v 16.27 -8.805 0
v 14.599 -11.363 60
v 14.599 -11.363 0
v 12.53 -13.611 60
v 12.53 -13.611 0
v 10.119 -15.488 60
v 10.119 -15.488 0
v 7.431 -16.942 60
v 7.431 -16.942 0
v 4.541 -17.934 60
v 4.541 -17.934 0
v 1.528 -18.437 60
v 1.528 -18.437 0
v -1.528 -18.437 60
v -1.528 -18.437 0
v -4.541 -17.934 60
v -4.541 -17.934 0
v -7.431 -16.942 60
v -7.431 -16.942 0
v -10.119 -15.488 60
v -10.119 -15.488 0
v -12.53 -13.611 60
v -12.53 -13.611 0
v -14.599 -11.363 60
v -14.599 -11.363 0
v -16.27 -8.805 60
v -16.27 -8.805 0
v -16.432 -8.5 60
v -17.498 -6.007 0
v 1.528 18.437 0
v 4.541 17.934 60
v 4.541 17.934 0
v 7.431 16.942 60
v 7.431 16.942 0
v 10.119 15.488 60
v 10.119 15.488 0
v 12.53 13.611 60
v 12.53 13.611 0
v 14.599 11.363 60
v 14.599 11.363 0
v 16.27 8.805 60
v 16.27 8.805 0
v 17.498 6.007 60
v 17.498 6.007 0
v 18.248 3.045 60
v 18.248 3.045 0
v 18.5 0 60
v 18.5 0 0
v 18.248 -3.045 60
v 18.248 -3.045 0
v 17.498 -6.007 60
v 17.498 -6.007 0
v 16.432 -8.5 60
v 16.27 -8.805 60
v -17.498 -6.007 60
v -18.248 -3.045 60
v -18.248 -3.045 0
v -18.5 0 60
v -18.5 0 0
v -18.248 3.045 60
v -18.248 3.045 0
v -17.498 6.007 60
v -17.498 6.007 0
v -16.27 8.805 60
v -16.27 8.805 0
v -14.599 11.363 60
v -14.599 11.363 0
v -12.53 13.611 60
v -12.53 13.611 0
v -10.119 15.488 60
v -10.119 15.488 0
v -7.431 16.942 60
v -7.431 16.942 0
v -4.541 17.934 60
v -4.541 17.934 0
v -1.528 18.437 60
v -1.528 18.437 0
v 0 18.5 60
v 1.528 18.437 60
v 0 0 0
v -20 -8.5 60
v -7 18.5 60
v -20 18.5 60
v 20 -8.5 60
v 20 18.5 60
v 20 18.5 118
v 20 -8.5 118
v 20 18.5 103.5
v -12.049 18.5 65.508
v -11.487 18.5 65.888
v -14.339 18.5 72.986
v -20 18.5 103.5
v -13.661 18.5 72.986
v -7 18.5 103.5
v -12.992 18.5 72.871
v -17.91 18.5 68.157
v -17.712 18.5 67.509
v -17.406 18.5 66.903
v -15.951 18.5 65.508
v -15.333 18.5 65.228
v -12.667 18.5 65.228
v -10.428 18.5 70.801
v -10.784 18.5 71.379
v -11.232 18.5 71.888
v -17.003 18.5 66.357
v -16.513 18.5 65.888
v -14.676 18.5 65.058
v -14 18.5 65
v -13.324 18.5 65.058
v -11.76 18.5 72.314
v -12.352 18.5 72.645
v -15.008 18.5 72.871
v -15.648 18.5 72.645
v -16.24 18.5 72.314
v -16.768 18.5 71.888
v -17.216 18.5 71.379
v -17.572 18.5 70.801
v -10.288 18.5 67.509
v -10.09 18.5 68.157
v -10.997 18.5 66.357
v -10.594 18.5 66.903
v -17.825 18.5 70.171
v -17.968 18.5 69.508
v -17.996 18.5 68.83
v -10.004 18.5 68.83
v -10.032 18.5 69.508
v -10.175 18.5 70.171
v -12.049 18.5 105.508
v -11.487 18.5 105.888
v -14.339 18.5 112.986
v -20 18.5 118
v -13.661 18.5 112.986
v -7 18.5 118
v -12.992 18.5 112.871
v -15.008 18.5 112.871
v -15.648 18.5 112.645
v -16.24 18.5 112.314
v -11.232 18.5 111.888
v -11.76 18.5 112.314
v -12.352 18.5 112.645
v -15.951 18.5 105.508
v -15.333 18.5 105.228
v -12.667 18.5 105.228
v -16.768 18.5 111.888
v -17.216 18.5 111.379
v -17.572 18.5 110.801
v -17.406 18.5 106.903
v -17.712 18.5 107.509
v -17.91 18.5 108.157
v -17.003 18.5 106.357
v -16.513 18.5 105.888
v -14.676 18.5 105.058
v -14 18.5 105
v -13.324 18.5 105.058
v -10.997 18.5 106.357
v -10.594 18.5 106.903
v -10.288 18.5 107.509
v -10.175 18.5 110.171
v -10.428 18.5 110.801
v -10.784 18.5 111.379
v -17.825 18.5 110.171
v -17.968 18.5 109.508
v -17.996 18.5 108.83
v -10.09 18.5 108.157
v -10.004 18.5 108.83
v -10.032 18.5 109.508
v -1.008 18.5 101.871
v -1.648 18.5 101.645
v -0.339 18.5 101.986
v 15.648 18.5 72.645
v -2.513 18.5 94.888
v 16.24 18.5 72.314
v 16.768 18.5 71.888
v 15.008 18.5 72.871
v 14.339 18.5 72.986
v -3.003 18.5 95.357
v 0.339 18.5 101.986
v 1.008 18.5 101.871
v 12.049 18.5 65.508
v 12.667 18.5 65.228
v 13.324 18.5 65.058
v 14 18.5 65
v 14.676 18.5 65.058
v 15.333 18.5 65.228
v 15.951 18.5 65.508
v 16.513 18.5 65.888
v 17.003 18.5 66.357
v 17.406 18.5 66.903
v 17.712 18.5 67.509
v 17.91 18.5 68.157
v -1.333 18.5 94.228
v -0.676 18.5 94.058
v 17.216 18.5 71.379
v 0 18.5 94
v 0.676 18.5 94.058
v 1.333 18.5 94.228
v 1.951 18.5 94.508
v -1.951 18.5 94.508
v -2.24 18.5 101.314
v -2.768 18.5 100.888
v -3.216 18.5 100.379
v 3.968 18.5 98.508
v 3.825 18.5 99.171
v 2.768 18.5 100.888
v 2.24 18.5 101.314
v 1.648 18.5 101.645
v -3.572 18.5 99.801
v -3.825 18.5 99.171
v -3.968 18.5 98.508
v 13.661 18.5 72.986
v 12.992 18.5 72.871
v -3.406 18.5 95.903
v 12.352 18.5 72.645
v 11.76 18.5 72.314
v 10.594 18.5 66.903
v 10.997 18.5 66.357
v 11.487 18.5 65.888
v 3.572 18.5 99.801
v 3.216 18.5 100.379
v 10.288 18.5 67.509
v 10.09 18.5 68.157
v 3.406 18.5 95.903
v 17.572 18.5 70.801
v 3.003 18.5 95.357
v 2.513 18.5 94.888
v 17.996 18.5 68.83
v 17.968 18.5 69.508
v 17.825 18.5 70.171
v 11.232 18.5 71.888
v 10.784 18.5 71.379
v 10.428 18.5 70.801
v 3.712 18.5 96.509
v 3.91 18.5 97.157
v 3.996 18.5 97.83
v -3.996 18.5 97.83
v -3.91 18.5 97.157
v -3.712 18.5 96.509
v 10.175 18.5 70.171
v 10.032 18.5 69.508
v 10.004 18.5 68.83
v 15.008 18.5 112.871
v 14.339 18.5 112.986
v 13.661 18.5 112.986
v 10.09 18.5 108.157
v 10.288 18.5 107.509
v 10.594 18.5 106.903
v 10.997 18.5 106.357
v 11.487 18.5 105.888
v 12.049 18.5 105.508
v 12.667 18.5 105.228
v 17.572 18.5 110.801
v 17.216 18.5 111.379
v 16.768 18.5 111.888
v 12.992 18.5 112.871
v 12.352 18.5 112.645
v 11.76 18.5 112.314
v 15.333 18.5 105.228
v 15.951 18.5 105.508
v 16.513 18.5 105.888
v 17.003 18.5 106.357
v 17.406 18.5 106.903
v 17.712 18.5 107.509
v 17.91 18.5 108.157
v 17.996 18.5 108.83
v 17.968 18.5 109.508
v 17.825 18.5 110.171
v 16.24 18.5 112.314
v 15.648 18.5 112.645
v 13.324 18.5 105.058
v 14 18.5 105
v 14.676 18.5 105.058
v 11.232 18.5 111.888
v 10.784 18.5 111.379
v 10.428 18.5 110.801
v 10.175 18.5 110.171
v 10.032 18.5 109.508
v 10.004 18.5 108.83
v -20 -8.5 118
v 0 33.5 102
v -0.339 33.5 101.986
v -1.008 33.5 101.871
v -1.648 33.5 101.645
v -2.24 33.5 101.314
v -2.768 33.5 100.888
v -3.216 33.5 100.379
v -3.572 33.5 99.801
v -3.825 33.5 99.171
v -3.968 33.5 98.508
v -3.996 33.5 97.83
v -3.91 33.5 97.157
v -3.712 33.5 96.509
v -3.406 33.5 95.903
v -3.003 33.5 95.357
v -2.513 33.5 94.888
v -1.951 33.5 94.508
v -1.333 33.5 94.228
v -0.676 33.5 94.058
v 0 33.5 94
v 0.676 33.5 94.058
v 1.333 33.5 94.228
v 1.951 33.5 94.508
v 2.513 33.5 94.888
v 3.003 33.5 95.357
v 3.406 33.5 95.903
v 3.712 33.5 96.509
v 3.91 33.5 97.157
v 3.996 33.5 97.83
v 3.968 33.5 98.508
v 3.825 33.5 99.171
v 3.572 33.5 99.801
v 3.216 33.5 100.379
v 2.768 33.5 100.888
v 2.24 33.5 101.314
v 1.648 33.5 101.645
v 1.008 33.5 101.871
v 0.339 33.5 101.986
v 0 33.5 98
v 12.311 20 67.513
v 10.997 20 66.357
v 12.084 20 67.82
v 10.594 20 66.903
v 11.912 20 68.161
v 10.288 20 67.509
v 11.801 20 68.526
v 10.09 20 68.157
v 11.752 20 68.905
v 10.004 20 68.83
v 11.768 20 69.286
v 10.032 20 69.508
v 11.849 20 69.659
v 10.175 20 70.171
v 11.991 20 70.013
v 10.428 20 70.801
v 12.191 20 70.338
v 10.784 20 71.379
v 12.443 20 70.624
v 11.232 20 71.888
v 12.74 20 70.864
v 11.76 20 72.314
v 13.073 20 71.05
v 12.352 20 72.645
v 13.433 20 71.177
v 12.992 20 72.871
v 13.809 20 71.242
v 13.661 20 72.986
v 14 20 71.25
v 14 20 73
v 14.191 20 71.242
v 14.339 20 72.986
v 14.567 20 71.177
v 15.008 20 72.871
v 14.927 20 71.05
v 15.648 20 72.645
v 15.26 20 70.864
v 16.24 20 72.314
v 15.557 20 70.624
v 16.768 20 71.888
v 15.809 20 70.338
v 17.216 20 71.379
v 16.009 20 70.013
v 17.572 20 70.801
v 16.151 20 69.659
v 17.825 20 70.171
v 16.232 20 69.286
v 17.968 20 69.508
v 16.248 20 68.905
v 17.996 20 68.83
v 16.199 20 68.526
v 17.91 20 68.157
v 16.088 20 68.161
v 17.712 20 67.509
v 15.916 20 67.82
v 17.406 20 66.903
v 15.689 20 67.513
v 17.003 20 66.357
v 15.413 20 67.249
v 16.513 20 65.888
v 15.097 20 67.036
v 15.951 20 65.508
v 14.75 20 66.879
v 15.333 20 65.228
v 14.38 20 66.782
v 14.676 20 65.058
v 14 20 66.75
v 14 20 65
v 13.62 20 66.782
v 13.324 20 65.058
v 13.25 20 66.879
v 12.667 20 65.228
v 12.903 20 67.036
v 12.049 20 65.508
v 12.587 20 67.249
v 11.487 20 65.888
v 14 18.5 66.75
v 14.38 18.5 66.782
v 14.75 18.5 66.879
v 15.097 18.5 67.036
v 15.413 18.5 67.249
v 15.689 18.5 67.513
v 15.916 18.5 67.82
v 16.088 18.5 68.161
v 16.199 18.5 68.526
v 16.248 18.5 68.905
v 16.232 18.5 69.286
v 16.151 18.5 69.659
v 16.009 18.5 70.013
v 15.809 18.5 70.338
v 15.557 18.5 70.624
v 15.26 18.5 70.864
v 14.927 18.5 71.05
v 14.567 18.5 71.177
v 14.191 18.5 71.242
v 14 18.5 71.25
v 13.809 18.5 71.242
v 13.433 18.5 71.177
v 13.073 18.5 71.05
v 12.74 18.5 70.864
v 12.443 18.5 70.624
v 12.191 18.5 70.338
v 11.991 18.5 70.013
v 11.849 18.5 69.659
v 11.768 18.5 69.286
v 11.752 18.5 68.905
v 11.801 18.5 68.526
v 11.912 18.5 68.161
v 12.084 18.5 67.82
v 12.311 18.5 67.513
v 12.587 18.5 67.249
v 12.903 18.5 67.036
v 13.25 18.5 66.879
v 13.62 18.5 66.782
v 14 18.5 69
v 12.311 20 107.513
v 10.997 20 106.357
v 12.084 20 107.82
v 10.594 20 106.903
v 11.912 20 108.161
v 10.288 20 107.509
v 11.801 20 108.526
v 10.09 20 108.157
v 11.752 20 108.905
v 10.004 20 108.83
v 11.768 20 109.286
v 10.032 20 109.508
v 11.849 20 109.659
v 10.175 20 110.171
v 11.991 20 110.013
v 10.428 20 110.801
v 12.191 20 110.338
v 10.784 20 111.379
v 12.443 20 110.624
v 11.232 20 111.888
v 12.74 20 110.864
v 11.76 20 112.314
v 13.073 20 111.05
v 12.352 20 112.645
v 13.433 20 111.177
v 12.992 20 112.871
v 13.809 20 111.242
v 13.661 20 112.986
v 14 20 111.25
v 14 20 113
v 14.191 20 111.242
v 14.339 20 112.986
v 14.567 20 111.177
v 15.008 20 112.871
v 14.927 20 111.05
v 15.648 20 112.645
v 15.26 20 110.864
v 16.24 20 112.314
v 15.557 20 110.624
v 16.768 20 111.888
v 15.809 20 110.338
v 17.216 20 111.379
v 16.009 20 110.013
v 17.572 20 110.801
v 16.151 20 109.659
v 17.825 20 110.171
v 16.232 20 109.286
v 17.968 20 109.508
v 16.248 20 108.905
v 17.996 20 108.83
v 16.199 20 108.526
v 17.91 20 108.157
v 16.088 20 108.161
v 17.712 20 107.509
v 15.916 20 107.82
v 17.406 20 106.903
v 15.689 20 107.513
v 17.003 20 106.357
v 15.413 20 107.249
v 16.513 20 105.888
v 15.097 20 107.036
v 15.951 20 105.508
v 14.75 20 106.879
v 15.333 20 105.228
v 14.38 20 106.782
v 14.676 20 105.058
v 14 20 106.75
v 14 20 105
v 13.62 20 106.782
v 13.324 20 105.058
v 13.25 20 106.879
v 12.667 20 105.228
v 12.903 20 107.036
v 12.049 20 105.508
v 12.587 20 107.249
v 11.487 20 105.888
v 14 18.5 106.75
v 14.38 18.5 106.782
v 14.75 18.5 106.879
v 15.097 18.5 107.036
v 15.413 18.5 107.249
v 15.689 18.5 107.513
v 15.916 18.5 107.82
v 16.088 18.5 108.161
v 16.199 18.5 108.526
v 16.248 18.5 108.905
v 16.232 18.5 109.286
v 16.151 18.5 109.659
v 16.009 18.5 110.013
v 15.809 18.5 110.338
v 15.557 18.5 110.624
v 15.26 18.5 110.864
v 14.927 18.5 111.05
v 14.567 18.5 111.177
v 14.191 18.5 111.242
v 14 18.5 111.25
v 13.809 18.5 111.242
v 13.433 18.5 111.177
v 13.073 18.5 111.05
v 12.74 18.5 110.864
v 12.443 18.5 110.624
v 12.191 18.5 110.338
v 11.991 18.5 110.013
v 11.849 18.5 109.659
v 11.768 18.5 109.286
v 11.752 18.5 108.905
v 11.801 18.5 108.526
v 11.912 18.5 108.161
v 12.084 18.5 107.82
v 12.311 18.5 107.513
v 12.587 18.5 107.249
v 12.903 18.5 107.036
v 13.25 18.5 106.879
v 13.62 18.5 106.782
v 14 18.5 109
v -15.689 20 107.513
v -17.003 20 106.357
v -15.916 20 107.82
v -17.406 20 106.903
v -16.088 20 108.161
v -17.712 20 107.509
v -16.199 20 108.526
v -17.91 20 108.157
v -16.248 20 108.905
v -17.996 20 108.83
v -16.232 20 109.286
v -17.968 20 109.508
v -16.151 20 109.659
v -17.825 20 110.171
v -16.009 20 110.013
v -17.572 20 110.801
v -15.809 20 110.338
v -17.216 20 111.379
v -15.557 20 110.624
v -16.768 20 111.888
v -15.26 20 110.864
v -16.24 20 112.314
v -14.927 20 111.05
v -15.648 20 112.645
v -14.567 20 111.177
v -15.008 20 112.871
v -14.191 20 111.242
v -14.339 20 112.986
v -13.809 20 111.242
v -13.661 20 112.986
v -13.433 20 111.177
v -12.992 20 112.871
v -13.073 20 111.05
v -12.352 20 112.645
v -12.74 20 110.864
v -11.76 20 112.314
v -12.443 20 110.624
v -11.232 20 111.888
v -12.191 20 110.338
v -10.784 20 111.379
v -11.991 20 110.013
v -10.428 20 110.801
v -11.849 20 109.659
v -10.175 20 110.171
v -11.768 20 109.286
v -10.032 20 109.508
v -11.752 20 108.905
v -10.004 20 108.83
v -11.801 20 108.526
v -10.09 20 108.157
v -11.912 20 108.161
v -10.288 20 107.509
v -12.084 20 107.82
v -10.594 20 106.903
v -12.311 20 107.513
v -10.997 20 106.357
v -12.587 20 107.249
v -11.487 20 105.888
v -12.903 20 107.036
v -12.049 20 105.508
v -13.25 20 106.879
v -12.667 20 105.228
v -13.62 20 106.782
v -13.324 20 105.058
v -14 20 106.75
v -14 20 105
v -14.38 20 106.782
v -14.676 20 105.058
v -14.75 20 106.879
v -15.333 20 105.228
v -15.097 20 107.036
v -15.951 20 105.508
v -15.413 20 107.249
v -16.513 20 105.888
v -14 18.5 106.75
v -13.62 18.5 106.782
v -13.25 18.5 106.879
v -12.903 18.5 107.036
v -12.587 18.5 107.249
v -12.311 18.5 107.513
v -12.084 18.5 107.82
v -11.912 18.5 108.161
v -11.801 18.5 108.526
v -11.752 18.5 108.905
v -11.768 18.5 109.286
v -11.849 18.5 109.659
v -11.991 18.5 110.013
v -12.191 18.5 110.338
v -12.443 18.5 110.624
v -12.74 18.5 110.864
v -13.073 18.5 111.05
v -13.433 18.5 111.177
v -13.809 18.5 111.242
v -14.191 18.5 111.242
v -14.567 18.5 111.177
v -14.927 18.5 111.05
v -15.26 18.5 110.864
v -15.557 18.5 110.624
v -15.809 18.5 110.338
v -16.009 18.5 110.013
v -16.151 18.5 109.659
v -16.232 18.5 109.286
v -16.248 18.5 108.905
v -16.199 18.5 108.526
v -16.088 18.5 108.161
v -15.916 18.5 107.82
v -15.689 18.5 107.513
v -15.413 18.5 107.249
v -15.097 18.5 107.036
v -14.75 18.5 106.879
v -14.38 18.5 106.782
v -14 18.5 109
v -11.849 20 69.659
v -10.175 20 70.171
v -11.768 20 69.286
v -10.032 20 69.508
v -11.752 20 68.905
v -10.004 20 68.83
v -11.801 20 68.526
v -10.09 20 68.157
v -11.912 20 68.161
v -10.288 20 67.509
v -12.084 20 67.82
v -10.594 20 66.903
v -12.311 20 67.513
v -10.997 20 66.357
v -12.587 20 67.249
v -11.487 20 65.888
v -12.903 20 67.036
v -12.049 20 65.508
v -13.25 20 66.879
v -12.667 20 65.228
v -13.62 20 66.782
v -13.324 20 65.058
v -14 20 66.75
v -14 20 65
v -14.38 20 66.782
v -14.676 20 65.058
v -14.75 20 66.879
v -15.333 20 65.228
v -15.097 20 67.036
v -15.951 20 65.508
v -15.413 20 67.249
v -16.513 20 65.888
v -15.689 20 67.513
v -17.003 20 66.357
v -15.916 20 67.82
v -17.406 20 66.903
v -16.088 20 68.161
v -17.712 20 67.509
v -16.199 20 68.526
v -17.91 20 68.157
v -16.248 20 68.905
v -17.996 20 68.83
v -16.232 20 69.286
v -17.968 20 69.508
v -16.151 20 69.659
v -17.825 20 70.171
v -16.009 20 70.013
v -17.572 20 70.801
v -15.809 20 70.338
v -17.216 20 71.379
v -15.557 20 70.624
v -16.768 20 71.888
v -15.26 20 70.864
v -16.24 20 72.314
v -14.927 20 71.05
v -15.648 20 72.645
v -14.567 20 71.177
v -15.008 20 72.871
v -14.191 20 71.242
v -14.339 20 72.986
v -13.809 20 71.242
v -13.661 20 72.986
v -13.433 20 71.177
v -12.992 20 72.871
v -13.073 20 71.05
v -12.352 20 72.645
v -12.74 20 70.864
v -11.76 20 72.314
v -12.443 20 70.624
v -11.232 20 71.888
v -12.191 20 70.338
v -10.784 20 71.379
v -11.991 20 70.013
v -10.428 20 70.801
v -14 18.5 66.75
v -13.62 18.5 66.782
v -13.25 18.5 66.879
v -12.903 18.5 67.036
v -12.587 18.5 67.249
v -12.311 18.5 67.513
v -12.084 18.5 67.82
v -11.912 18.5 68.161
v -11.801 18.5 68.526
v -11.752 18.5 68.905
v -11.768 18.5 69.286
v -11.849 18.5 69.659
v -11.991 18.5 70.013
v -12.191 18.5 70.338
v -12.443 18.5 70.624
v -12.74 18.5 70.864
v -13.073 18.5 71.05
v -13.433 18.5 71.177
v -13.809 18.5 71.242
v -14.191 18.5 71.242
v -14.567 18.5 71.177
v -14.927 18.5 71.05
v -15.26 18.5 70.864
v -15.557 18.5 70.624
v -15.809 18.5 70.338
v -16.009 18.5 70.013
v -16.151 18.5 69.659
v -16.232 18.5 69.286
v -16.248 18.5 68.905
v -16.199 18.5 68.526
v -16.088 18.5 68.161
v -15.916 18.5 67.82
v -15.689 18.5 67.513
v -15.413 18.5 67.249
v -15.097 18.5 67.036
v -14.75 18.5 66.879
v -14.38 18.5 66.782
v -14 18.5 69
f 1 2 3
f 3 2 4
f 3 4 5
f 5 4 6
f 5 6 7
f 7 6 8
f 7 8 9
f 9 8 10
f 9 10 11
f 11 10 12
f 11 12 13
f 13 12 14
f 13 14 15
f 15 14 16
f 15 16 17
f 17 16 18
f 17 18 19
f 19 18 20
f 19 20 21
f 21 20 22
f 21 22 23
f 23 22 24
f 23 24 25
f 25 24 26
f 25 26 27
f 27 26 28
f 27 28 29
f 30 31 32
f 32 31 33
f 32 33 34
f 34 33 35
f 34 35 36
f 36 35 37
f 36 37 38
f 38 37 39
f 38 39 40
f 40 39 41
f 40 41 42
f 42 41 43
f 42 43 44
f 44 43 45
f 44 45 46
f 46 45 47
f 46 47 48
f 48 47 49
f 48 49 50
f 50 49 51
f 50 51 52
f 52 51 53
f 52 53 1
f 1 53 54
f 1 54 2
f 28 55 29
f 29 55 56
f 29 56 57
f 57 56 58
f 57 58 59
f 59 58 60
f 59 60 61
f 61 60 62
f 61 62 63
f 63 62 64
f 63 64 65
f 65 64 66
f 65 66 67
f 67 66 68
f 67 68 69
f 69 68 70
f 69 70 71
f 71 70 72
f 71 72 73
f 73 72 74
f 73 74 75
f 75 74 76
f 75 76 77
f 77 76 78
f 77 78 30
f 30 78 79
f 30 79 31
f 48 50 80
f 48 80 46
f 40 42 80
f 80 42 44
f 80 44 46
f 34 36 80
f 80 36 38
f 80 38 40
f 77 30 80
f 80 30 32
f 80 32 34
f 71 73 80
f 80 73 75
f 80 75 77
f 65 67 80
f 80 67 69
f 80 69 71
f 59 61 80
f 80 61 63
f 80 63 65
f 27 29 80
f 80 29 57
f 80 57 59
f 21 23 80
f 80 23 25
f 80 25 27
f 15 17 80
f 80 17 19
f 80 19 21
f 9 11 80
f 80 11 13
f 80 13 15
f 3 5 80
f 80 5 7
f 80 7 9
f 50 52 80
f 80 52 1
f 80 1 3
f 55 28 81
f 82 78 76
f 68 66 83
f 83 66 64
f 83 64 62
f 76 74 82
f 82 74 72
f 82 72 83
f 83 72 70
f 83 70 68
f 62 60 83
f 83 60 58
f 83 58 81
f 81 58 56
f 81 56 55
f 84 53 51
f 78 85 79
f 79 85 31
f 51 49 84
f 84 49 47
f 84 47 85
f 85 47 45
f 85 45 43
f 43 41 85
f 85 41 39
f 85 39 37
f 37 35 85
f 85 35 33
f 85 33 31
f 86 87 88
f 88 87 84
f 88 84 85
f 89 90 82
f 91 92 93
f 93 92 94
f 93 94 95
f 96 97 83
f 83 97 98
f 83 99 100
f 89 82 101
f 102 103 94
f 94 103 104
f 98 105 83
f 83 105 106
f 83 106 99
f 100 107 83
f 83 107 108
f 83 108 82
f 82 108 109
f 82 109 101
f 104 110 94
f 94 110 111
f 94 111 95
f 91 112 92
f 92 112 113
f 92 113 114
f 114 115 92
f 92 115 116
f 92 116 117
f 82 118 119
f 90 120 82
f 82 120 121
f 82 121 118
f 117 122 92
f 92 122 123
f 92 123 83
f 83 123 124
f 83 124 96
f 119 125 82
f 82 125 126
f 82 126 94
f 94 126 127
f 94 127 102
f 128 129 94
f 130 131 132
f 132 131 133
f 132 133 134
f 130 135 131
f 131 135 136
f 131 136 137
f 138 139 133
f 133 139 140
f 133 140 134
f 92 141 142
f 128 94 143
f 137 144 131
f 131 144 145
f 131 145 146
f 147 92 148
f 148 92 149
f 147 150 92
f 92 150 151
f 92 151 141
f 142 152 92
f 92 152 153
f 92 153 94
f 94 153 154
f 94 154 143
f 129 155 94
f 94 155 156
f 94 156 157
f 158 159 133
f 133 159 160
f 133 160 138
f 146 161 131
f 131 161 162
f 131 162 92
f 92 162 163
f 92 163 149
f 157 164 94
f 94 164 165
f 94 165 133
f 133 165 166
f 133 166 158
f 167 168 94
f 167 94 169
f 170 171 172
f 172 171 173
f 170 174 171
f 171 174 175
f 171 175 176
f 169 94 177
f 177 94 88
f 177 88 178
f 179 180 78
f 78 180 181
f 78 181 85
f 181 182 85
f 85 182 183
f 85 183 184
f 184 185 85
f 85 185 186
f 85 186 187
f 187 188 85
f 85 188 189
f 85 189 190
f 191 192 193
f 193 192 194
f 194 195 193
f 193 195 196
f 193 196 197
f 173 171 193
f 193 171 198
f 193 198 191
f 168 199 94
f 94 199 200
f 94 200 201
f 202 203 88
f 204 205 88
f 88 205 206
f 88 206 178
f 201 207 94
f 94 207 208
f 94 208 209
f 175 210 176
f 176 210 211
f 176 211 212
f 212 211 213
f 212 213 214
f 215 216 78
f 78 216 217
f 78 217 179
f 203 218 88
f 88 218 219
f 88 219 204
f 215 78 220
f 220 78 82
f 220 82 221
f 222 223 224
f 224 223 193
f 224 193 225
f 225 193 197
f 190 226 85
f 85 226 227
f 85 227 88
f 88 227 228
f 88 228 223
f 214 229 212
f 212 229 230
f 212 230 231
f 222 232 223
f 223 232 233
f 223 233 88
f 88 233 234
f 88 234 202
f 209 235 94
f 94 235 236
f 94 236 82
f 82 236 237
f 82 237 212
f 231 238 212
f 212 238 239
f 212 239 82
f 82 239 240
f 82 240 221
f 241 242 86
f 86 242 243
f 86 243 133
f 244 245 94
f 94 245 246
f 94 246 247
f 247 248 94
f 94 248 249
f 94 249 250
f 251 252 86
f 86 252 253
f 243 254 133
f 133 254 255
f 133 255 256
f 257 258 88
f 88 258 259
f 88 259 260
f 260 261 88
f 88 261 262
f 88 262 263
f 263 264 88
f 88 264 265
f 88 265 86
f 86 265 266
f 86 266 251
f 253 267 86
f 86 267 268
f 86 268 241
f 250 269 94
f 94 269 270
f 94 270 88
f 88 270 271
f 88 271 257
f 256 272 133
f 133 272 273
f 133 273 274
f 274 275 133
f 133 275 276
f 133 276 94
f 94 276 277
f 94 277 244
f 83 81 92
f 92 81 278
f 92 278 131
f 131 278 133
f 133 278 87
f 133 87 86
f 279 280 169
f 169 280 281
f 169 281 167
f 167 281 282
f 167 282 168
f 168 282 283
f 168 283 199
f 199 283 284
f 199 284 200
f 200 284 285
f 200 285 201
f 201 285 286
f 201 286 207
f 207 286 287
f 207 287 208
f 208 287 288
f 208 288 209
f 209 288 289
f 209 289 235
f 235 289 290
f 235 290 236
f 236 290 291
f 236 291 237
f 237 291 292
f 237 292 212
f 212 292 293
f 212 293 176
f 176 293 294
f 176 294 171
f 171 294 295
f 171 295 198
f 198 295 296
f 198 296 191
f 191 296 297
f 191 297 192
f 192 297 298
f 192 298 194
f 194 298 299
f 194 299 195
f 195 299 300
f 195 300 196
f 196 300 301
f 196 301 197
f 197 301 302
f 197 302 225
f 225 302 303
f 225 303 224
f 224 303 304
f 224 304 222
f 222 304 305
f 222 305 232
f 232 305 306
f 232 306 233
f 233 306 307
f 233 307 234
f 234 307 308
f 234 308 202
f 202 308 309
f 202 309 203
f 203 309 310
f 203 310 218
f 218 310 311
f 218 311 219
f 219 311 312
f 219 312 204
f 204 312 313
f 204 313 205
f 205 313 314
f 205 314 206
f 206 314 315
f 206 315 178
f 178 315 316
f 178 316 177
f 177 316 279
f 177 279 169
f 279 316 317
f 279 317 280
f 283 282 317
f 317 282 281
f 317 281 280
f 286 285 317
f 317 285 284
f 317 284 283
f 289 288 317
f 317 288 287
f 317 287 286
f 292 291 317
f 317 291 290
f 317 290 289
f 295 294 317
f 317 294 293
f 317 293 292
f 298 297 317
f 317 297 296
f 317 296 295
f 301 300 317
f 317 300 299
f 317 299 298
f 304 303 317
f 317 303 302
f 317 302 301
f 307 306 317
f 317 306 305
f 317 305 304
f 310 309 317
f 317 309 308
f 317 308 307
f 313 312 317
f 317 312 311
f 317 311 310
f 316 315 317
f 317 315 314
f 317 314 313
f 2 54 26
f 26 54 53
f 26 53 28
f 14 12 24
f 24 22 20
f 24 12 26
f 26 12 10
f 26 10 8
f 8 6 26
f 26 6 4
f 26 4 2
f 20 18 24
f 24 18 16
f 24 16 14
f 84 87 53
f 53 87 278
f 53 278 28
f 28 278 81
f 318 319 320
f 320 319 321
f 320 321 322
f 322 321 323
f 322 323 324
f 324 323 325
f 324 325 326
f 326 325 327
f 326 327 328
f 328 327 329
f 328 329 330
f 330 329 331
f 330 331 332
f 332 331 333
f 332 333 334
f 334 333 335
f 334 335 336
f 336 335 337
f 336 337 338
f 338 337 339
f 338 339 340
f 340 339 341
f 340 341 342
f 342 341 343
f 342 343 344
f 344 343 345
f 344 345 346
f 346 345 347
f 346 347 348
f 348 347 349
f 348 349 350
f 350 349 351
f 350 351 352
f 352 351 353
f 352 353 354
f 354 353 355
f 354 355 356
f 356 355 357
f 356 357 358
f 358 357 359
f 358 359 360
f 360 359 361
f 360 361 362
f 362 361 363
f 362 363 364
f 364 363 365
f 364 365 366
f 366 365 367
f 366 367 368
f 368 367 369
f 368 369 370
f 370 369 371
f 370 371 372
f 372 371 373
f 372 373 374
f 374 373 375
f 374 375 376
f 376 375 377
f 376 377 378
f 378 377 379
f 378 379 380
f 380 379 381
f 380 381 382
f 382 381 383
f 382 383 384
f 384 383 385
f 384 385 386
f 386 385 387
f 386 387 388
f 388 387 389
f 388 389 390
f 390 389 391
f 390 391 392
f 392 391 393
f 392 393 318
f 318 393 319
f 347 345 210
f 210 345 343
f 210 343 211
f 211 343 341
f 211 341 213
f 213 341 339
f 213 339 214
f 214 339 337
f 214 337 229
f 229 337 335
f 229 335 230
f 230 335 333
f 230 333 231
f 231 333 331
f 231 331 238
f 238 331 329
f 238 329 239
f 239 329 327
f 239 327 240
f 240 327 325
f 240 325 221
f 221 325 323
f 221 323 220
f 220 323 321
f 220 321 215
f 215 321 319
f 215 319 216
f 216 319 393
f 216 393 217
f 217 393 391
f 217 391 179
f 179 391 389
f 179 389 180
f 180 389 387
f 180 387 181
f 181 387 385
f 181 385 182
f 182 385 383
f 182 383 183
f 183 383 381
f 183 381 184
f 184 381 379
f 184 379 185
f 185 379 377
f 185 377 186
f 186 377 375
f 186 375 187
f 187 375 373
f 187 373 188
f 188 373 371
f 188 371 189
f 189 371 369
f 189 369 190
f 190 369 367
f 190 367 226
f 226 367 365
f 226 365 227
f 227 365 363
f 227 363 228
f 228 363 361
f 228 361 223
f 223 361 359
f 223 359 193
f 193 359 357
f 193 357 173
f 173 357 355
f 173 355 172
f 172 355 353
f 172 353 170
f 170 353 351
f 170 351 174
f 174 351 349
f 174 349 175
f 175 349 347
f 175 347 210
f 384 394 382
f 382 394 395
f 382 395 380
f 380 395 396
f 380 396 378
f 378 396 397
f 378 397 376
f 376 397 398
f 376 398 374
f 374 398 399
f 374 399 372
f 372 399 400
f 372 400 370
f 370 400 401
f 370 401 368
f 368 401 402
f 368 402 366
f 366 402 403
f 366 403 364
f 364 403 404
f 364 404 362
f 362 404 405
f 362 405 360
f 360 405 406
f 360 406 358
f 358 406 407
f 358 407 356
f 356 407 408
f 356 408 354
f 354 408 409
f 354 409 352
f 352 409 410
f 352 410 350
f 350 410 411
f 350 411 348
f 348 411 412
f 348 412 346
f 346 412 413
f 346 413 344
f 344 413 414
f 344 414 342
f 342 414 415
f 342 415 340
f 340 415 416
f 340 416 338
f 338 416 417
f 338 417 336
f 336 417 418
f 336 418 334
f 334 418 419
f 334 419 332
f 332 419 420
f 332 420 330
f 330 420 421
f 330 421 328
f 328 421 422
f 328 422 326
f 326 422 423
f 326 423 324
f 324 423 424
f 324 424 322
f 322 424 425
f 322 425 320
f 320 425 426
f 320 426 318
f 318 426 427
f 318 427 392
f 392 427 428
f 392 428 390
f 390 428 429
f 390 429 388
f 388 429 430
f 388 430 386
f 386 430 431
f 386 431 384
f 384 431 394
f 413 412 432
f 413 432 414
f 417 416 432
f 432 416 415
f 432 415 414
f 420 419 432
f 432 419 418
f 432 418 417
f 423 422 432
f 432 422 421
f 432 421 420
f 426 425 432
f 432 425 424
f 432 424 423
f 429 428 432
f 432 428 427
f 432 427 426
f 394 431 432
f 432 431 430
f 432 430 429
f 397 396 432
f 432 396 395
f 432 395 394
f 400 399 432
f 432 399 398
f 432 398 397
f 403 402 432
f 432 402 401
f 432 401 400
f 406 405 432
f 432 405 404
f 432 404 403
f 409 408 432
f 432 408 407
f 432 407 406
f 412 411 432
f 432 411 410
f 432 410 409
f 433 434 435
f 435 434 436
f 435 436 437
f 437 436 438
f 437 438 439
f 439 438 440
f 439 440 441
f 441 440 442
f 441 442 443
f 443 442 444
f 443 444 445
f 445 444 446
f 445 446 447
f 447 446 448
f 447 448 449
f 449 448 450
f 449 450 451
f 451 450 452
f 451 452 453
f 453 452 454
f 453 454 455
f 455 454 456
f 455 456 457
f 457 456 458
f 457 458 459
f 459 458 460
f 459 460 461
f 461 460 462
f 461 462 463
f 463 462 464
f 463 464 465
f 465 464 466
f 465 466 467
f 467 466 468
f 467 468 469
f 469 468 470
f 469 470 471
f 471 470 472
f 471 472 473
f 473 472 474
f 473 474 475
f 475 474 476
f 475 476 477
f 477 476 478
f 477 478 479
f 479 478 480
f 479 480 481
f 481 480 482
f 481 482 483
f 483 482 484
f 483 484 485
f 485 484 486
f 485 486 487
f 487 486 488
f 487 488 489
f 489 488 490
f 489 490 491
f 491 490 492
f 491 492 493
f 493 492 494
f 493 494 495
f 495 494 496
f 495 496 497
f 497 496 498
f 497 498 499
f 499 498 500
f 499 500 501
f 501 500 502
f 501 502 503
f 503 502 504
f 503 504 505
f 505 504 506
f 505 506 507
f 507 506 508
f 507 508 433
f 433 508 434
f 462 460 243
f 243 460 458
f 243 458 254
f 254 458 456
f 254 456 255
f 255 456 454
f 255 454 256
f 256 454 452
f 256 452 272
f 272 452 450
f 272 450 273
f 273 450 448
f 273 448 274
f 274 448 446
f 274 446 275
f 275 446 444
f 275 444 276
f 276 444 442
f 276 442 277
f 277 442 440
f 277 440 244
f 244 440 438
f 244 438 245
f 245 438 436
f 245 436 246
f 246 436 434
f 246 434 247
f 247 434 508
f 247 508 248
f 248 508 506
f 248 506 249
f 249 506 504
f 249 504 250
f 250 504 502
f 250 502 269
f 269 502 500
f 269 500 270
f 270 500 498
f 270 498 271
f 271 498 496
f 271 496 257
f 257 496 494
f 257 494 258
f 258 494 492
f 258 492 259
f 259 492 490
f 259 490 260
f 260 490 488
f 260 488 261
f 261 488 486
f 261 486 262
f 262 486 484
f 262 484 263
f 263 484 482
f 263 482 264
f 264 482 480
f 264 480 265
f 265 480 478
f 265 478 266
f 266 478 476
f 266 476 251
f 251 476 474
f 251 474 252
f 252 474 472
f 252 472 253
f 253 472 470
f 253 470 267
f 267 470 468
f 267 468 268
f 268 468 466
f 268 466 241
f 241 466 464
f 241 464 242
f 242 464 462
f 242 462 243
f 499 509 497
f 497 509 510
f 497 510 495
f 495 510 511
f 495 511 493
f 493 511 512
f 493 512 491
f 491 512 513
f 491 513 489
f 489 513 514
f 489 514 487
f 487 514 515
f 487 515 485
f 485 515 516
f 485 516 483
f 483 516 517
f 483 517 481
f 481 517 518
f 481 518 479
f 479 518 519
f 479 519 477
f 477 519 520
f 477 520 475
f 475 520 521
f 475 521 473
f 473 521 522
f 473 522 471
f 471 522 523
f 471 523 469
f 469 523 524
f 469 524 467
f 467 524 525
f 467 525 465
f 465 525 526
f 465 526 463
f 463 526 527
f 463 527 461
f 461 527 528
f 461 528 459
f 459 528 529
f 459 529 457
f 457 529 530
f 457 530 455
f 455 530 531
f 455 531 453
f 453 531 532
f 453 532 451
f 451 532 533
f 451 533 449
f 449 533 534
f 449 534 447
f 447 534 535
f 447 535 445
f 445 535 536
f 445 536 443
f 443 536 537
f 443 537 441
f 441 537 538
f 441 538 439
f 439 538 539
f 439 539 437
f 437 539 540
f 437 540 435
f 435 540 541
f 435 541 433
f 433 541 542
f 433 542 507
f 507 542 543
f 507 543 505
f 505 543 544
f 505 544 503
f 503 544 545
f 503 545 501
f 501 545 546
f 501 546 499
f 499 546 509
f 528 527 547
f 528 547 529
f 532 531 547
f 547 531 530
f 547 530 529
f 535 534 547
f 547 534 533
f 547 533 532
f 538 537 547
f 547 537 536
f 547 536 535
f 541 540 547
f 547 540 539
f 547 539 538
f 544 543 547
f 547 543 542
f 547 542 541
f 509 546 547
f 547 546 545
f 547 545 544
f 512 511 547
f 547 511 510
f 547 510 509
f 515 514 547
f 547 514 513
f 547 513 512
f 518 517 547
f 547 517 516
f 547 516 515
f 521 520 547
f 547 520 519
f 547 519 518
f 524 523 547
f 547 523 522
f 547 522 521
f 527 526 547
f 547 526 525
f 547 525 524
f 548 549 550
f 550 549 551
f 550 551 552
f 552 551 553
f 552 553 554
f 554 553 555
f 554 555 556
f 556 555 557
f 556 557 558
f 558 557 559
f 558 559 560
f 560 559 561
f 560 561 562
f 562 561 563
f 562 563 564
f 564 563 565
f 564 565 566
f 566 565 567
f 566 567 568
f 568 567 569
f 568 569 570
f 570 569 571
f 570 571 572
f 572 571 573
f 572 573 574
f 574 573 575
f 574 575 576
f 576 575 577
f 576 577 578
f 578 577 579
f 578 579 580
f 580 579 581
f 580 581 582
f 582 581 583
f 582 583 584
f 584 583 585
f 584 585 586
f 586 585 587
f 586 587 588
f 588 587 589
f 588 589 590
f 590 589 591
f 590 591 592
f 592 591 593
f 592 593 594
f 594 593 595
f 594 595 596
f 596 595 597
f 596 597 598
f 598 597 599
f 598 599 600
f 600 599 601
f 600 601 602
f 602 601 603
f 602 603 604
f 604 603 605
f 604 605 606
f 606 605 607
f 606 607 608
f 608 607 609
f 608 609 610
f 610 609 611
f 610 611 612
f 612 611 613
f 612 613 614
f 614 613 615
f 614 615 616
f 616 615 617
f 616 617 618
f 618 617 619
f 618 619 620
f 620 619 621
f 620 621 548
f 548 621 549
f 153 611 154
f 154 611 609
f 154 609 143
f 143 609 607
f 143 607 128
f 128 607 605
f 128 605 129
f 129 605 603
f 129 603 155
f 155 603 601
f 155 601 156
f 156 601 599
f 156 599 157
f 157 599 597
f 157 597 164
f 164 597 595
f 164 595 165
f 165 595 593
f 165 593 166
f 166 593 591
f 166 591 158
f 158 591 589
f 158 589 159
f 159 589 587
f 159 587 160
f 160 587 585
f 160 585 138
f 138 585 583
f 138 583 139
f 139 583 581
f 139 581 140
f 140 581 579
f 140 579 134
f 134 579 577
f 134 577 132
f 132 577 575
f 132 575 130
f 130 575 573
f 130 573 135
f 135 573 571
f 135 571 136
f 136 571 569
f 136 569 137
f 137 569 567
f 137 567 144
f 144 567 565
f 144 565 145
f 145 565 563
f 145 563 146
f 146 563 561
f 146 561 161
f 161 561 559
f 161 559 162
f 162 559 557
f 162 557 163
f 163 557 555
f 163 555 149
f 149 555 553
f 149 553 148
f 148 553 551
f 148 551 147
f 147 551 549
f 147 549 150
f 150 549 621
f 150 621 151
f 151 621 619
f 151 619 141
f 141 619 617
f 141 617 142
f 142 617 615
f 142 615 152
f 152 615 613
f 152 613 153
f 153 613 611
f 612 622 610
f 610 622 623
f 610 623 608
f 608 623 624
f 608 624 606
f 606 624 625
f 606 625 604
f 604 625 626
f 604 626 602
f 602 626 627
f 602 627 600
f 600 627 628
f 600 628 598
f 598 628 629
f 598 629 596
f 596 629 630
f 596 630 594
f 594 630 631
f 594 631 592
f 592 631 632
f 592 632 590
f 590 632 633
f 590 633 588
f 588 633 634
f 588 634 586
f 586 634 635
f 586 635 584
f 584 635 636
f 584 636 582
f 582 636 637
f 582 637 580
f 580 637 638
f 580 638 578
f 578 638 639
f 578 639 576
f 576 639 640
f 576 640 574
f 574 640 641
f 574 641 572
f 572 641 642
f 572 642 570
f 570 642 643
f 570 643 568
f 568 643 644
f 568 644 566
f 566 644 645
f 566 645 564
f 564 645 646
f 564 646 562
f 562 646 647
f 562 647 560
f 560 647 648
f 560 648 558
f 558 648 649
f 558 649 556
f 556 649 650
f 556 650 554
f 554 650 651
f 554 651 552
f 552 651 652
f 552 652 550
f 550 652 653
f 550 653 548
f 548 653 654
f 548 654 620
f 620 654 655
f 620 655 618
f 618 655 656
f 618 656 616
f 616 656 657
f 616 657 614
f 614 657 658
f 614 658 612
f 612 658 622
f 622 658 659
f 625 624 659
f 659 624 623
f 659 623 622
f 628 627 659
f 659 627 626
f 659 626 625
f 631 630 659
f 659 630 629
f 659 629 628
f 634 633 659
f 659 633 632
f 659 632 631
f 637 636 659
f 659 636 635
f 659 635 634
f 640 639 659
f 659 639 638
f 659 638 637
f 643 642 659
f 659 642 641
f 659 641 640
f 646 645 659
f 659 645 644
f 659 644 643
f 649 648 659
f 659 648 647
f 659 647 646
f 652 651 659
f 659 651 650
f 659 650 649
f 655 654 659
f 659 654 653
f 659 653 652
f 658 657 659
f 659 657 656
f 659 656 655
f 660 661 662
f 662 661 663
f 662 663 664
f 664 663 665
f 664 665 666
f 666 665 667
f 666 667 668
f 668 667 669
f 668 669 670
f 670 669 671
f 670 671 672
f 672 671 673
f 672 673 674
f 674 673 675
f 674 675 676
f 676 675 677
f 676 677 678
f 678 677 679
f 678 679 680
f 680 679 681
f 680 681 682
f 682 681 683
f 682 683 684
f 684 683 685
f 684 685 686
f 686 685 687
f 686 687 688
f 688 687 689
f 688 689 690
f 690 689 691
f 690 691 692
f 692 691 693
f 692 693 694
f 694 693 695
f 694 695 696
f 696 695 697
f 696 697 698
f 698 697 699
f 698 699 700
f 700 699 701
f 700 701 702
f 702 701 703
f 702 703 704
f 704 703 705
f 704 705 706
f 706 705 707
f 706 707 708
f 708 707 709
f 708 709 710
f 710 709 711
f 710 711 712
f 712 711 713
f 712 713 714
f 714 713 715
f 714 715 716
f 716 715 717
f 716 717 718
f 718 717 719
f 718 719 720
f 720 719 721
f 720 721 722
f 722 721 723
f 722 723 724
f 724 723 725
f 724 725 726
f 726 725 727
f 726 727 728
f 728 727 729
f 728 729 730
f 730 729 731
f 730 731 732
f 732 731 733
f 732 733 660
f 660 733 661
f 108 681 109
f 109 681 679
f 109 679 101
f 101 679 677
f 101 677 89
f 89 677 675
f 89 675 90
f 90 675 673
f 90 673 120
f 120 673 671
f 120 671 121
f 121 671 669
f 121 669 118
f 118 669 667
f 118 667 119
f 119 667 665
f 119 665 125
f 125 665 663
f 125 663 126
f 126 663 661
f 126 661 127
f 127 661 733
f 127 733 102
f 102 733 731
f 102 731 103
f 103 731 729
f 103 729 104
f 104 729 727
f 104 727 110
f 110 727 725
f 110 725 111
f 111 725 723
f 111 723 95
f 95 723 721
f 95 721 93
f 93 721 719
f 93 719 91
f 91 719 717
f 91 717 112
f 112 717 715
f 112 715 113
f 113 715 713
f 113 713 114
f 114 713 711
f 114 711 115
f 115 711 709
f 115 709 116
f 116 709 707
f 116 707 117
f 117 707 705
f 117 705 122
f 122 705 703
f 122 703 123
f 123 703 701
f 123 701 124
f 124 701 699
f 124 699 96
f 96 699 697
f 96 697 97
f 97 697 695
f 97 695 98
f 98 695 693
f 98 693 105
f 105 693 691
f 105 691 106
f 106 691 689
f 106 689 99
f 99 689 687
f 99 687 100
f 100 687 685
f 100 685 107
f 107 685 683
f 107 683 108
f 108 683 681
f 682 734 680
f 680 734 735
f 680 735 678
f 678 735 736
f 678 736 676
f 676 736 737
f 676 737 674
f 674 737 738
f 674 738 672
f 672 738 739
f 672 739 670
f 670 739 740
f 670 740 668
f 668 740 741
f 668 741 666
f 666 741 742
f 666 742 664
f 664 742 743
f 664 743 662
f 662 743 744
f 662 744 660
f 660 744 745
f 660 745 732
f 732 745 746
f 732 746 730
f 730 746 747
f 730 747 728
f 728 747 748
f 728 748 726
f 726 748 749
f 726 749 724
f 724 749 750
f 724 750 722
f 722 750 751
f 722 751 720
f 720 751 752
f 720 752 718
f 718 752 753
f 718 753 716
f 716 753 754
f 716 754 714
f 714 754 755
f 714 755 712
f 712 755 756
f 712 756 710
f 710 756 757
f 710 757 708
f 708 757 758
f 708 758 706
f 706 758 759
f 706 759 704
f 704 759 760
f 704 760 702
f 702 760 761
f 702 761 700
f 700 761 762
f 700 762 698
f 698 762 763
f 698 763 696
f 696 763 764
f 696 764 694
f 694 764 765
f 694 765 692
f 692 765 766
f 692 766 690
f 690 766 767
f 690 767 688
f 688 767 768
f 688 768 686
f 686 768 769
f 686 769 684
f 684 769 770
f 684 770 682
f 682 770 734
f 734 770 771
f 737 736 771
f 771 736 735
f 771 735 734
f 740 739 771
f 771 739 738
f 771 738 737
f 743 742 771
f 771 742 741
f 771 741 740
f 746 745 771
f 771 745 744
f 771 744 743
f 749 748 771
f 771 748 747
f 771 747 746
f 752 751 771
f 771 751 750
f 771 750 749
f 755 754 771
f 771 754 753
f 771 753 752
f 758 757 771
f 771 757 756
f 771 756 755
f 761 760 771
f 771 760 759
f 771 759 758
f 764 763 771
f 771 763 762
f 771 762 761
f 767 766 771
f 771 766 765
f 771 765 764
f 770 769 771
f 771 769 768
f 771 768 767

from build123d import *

# Parameters (mm, degrees)
SKETCH1_R               = 18.5
BOSS_EXTRUDE1_DEPTH     = 60
SKETCH2_W               = 40
SKETCH2_H               = 37
BOSS_EXTRUDE2_DEPTH     = 58
SKETCH3_R               = 4
BOSS_EXTRUDE3_DEPTH     = 15
CUT_EXTRUDE1_DEPTH      = 125.282943319
CUT_EXTRUDE1_DEPTH_BACK = 58
SKETCH4_W               = 40
SKETCH4_H               = 10
SKETCH5_R               = 4
SKETCH5_R_2             = 2.25
BOSS_EXTRUDE4_DEPTH     = 1.5


with BuildPart() as part:
    # Sketch1 → Boss-Extrude1 (new body)
    with BuildSketch(Plane.XY):
        Circle(SKETCH1_R)
    extrude(amount=BOSS_EXTRUDE1_DEPTH)

    # Sketch2 → Boss-Extrude2 (add)
    with BuildSketch(Plane.XY.offset(60)):
        Rectangle(SKETCH2_W, SKETCH2_H)
    extrude(amount=BOSS_EXTRUDE2_DEPTH)

    # Sketch3 → Boss-Extrude3 (add)
    with BuildSketch(Plane(origin=(0, 18.5, 0), x_dir=(1, 0, 0), z_dir=(0, 1, 0))):
        with Locations(Location((0, -98, 0), (0, 0, 90))):
            Circle(SKETCH3_R)
    extrude(amount=BOSS_EXTRUDE3_DEPTH)

    # Sketch4 → Cut-Extrude1 (cut, two sides: drawn at the far end of the back side and taken through both)
    with BuildSketch(Plane.XY.offset(118).offset(-CUT_EXTRUDE1_DEPTH_BACK)):
        with Locations((0, -13.5)):
            Rectangle(SKETCH4_W, SKETCH4_H)
    extrude(amount=CUT_EXTRUDE1_DEPTH + CUT_EXTRUDE1_DEPTH_BACK, mode=Mode.SUBTRACT)

    # Sketch5 → Boss-Extrude4 (add)
    # profile 1 of 4: a face of its own
    with BuildSketch(Plane(origin=(0, 18.5, 0), x_dir=(1, 0, 0), z_dir=(0, 1, 0))):
        with Locations(Location((14, -69, 0), (0, 0, 90))):
            Circle(SKETCH5_R)
        with Locations(Location((14, -69, 0), (0, 0, 270))):
            Circle(SKETCH5_R_2, mode=Mode.SUBTRACT)
    # profile 2 of 4: a face of its own
    with BuildSketch(Plane(origin=(0, 18.5, 0), x_dir=(1, 0, 0), z_dir=(0, 1, 0))):
        with Locations(Location((14, -109, 0), (0, 0, 90))):
            Circle(SKETCH5_R)
        with Locations(Location((14, -109, 0), (0, 0, 270))):
            Circle(SKETCH5_R_2, mode=Mode.SUBTRACT)
    # profile 3 of 4: a face of its own
    with BuildSketch(Plane(origin=(0, 18.5, 0), x_dir=(1, 0, 0), z_dir=(0, 1, 0))):
        with Locations(Location((-14, -109, 0), (0, 0, 90))):
            Circle(SKETCH5_R)
        with Locations(Location((-14, -109, 0), (0, 0, 90))):
            Circle(SKETCH5_R_2, mode=Mode.SUBTRACT)
    # profile 4 of 4: a face of its own
    with BuildSketch(Plane(origin=(0, 18.5, 0), x_dir=(1, 0, 0), z_dir=(0, 1, 0))):
        with Locations(Location((-14, -69, 0), (0, 0, 90))):
            Circle(SKETCH5_R)
        with Locations(Location((-14, -69, 0), (0, 0, 90))):
            Circle(SKETCH5_R_2, mode=Mode.SUBTRACT)
    extrude(amount=BOSS_EXTRUDE4_DEPTH)


solid = part.part
